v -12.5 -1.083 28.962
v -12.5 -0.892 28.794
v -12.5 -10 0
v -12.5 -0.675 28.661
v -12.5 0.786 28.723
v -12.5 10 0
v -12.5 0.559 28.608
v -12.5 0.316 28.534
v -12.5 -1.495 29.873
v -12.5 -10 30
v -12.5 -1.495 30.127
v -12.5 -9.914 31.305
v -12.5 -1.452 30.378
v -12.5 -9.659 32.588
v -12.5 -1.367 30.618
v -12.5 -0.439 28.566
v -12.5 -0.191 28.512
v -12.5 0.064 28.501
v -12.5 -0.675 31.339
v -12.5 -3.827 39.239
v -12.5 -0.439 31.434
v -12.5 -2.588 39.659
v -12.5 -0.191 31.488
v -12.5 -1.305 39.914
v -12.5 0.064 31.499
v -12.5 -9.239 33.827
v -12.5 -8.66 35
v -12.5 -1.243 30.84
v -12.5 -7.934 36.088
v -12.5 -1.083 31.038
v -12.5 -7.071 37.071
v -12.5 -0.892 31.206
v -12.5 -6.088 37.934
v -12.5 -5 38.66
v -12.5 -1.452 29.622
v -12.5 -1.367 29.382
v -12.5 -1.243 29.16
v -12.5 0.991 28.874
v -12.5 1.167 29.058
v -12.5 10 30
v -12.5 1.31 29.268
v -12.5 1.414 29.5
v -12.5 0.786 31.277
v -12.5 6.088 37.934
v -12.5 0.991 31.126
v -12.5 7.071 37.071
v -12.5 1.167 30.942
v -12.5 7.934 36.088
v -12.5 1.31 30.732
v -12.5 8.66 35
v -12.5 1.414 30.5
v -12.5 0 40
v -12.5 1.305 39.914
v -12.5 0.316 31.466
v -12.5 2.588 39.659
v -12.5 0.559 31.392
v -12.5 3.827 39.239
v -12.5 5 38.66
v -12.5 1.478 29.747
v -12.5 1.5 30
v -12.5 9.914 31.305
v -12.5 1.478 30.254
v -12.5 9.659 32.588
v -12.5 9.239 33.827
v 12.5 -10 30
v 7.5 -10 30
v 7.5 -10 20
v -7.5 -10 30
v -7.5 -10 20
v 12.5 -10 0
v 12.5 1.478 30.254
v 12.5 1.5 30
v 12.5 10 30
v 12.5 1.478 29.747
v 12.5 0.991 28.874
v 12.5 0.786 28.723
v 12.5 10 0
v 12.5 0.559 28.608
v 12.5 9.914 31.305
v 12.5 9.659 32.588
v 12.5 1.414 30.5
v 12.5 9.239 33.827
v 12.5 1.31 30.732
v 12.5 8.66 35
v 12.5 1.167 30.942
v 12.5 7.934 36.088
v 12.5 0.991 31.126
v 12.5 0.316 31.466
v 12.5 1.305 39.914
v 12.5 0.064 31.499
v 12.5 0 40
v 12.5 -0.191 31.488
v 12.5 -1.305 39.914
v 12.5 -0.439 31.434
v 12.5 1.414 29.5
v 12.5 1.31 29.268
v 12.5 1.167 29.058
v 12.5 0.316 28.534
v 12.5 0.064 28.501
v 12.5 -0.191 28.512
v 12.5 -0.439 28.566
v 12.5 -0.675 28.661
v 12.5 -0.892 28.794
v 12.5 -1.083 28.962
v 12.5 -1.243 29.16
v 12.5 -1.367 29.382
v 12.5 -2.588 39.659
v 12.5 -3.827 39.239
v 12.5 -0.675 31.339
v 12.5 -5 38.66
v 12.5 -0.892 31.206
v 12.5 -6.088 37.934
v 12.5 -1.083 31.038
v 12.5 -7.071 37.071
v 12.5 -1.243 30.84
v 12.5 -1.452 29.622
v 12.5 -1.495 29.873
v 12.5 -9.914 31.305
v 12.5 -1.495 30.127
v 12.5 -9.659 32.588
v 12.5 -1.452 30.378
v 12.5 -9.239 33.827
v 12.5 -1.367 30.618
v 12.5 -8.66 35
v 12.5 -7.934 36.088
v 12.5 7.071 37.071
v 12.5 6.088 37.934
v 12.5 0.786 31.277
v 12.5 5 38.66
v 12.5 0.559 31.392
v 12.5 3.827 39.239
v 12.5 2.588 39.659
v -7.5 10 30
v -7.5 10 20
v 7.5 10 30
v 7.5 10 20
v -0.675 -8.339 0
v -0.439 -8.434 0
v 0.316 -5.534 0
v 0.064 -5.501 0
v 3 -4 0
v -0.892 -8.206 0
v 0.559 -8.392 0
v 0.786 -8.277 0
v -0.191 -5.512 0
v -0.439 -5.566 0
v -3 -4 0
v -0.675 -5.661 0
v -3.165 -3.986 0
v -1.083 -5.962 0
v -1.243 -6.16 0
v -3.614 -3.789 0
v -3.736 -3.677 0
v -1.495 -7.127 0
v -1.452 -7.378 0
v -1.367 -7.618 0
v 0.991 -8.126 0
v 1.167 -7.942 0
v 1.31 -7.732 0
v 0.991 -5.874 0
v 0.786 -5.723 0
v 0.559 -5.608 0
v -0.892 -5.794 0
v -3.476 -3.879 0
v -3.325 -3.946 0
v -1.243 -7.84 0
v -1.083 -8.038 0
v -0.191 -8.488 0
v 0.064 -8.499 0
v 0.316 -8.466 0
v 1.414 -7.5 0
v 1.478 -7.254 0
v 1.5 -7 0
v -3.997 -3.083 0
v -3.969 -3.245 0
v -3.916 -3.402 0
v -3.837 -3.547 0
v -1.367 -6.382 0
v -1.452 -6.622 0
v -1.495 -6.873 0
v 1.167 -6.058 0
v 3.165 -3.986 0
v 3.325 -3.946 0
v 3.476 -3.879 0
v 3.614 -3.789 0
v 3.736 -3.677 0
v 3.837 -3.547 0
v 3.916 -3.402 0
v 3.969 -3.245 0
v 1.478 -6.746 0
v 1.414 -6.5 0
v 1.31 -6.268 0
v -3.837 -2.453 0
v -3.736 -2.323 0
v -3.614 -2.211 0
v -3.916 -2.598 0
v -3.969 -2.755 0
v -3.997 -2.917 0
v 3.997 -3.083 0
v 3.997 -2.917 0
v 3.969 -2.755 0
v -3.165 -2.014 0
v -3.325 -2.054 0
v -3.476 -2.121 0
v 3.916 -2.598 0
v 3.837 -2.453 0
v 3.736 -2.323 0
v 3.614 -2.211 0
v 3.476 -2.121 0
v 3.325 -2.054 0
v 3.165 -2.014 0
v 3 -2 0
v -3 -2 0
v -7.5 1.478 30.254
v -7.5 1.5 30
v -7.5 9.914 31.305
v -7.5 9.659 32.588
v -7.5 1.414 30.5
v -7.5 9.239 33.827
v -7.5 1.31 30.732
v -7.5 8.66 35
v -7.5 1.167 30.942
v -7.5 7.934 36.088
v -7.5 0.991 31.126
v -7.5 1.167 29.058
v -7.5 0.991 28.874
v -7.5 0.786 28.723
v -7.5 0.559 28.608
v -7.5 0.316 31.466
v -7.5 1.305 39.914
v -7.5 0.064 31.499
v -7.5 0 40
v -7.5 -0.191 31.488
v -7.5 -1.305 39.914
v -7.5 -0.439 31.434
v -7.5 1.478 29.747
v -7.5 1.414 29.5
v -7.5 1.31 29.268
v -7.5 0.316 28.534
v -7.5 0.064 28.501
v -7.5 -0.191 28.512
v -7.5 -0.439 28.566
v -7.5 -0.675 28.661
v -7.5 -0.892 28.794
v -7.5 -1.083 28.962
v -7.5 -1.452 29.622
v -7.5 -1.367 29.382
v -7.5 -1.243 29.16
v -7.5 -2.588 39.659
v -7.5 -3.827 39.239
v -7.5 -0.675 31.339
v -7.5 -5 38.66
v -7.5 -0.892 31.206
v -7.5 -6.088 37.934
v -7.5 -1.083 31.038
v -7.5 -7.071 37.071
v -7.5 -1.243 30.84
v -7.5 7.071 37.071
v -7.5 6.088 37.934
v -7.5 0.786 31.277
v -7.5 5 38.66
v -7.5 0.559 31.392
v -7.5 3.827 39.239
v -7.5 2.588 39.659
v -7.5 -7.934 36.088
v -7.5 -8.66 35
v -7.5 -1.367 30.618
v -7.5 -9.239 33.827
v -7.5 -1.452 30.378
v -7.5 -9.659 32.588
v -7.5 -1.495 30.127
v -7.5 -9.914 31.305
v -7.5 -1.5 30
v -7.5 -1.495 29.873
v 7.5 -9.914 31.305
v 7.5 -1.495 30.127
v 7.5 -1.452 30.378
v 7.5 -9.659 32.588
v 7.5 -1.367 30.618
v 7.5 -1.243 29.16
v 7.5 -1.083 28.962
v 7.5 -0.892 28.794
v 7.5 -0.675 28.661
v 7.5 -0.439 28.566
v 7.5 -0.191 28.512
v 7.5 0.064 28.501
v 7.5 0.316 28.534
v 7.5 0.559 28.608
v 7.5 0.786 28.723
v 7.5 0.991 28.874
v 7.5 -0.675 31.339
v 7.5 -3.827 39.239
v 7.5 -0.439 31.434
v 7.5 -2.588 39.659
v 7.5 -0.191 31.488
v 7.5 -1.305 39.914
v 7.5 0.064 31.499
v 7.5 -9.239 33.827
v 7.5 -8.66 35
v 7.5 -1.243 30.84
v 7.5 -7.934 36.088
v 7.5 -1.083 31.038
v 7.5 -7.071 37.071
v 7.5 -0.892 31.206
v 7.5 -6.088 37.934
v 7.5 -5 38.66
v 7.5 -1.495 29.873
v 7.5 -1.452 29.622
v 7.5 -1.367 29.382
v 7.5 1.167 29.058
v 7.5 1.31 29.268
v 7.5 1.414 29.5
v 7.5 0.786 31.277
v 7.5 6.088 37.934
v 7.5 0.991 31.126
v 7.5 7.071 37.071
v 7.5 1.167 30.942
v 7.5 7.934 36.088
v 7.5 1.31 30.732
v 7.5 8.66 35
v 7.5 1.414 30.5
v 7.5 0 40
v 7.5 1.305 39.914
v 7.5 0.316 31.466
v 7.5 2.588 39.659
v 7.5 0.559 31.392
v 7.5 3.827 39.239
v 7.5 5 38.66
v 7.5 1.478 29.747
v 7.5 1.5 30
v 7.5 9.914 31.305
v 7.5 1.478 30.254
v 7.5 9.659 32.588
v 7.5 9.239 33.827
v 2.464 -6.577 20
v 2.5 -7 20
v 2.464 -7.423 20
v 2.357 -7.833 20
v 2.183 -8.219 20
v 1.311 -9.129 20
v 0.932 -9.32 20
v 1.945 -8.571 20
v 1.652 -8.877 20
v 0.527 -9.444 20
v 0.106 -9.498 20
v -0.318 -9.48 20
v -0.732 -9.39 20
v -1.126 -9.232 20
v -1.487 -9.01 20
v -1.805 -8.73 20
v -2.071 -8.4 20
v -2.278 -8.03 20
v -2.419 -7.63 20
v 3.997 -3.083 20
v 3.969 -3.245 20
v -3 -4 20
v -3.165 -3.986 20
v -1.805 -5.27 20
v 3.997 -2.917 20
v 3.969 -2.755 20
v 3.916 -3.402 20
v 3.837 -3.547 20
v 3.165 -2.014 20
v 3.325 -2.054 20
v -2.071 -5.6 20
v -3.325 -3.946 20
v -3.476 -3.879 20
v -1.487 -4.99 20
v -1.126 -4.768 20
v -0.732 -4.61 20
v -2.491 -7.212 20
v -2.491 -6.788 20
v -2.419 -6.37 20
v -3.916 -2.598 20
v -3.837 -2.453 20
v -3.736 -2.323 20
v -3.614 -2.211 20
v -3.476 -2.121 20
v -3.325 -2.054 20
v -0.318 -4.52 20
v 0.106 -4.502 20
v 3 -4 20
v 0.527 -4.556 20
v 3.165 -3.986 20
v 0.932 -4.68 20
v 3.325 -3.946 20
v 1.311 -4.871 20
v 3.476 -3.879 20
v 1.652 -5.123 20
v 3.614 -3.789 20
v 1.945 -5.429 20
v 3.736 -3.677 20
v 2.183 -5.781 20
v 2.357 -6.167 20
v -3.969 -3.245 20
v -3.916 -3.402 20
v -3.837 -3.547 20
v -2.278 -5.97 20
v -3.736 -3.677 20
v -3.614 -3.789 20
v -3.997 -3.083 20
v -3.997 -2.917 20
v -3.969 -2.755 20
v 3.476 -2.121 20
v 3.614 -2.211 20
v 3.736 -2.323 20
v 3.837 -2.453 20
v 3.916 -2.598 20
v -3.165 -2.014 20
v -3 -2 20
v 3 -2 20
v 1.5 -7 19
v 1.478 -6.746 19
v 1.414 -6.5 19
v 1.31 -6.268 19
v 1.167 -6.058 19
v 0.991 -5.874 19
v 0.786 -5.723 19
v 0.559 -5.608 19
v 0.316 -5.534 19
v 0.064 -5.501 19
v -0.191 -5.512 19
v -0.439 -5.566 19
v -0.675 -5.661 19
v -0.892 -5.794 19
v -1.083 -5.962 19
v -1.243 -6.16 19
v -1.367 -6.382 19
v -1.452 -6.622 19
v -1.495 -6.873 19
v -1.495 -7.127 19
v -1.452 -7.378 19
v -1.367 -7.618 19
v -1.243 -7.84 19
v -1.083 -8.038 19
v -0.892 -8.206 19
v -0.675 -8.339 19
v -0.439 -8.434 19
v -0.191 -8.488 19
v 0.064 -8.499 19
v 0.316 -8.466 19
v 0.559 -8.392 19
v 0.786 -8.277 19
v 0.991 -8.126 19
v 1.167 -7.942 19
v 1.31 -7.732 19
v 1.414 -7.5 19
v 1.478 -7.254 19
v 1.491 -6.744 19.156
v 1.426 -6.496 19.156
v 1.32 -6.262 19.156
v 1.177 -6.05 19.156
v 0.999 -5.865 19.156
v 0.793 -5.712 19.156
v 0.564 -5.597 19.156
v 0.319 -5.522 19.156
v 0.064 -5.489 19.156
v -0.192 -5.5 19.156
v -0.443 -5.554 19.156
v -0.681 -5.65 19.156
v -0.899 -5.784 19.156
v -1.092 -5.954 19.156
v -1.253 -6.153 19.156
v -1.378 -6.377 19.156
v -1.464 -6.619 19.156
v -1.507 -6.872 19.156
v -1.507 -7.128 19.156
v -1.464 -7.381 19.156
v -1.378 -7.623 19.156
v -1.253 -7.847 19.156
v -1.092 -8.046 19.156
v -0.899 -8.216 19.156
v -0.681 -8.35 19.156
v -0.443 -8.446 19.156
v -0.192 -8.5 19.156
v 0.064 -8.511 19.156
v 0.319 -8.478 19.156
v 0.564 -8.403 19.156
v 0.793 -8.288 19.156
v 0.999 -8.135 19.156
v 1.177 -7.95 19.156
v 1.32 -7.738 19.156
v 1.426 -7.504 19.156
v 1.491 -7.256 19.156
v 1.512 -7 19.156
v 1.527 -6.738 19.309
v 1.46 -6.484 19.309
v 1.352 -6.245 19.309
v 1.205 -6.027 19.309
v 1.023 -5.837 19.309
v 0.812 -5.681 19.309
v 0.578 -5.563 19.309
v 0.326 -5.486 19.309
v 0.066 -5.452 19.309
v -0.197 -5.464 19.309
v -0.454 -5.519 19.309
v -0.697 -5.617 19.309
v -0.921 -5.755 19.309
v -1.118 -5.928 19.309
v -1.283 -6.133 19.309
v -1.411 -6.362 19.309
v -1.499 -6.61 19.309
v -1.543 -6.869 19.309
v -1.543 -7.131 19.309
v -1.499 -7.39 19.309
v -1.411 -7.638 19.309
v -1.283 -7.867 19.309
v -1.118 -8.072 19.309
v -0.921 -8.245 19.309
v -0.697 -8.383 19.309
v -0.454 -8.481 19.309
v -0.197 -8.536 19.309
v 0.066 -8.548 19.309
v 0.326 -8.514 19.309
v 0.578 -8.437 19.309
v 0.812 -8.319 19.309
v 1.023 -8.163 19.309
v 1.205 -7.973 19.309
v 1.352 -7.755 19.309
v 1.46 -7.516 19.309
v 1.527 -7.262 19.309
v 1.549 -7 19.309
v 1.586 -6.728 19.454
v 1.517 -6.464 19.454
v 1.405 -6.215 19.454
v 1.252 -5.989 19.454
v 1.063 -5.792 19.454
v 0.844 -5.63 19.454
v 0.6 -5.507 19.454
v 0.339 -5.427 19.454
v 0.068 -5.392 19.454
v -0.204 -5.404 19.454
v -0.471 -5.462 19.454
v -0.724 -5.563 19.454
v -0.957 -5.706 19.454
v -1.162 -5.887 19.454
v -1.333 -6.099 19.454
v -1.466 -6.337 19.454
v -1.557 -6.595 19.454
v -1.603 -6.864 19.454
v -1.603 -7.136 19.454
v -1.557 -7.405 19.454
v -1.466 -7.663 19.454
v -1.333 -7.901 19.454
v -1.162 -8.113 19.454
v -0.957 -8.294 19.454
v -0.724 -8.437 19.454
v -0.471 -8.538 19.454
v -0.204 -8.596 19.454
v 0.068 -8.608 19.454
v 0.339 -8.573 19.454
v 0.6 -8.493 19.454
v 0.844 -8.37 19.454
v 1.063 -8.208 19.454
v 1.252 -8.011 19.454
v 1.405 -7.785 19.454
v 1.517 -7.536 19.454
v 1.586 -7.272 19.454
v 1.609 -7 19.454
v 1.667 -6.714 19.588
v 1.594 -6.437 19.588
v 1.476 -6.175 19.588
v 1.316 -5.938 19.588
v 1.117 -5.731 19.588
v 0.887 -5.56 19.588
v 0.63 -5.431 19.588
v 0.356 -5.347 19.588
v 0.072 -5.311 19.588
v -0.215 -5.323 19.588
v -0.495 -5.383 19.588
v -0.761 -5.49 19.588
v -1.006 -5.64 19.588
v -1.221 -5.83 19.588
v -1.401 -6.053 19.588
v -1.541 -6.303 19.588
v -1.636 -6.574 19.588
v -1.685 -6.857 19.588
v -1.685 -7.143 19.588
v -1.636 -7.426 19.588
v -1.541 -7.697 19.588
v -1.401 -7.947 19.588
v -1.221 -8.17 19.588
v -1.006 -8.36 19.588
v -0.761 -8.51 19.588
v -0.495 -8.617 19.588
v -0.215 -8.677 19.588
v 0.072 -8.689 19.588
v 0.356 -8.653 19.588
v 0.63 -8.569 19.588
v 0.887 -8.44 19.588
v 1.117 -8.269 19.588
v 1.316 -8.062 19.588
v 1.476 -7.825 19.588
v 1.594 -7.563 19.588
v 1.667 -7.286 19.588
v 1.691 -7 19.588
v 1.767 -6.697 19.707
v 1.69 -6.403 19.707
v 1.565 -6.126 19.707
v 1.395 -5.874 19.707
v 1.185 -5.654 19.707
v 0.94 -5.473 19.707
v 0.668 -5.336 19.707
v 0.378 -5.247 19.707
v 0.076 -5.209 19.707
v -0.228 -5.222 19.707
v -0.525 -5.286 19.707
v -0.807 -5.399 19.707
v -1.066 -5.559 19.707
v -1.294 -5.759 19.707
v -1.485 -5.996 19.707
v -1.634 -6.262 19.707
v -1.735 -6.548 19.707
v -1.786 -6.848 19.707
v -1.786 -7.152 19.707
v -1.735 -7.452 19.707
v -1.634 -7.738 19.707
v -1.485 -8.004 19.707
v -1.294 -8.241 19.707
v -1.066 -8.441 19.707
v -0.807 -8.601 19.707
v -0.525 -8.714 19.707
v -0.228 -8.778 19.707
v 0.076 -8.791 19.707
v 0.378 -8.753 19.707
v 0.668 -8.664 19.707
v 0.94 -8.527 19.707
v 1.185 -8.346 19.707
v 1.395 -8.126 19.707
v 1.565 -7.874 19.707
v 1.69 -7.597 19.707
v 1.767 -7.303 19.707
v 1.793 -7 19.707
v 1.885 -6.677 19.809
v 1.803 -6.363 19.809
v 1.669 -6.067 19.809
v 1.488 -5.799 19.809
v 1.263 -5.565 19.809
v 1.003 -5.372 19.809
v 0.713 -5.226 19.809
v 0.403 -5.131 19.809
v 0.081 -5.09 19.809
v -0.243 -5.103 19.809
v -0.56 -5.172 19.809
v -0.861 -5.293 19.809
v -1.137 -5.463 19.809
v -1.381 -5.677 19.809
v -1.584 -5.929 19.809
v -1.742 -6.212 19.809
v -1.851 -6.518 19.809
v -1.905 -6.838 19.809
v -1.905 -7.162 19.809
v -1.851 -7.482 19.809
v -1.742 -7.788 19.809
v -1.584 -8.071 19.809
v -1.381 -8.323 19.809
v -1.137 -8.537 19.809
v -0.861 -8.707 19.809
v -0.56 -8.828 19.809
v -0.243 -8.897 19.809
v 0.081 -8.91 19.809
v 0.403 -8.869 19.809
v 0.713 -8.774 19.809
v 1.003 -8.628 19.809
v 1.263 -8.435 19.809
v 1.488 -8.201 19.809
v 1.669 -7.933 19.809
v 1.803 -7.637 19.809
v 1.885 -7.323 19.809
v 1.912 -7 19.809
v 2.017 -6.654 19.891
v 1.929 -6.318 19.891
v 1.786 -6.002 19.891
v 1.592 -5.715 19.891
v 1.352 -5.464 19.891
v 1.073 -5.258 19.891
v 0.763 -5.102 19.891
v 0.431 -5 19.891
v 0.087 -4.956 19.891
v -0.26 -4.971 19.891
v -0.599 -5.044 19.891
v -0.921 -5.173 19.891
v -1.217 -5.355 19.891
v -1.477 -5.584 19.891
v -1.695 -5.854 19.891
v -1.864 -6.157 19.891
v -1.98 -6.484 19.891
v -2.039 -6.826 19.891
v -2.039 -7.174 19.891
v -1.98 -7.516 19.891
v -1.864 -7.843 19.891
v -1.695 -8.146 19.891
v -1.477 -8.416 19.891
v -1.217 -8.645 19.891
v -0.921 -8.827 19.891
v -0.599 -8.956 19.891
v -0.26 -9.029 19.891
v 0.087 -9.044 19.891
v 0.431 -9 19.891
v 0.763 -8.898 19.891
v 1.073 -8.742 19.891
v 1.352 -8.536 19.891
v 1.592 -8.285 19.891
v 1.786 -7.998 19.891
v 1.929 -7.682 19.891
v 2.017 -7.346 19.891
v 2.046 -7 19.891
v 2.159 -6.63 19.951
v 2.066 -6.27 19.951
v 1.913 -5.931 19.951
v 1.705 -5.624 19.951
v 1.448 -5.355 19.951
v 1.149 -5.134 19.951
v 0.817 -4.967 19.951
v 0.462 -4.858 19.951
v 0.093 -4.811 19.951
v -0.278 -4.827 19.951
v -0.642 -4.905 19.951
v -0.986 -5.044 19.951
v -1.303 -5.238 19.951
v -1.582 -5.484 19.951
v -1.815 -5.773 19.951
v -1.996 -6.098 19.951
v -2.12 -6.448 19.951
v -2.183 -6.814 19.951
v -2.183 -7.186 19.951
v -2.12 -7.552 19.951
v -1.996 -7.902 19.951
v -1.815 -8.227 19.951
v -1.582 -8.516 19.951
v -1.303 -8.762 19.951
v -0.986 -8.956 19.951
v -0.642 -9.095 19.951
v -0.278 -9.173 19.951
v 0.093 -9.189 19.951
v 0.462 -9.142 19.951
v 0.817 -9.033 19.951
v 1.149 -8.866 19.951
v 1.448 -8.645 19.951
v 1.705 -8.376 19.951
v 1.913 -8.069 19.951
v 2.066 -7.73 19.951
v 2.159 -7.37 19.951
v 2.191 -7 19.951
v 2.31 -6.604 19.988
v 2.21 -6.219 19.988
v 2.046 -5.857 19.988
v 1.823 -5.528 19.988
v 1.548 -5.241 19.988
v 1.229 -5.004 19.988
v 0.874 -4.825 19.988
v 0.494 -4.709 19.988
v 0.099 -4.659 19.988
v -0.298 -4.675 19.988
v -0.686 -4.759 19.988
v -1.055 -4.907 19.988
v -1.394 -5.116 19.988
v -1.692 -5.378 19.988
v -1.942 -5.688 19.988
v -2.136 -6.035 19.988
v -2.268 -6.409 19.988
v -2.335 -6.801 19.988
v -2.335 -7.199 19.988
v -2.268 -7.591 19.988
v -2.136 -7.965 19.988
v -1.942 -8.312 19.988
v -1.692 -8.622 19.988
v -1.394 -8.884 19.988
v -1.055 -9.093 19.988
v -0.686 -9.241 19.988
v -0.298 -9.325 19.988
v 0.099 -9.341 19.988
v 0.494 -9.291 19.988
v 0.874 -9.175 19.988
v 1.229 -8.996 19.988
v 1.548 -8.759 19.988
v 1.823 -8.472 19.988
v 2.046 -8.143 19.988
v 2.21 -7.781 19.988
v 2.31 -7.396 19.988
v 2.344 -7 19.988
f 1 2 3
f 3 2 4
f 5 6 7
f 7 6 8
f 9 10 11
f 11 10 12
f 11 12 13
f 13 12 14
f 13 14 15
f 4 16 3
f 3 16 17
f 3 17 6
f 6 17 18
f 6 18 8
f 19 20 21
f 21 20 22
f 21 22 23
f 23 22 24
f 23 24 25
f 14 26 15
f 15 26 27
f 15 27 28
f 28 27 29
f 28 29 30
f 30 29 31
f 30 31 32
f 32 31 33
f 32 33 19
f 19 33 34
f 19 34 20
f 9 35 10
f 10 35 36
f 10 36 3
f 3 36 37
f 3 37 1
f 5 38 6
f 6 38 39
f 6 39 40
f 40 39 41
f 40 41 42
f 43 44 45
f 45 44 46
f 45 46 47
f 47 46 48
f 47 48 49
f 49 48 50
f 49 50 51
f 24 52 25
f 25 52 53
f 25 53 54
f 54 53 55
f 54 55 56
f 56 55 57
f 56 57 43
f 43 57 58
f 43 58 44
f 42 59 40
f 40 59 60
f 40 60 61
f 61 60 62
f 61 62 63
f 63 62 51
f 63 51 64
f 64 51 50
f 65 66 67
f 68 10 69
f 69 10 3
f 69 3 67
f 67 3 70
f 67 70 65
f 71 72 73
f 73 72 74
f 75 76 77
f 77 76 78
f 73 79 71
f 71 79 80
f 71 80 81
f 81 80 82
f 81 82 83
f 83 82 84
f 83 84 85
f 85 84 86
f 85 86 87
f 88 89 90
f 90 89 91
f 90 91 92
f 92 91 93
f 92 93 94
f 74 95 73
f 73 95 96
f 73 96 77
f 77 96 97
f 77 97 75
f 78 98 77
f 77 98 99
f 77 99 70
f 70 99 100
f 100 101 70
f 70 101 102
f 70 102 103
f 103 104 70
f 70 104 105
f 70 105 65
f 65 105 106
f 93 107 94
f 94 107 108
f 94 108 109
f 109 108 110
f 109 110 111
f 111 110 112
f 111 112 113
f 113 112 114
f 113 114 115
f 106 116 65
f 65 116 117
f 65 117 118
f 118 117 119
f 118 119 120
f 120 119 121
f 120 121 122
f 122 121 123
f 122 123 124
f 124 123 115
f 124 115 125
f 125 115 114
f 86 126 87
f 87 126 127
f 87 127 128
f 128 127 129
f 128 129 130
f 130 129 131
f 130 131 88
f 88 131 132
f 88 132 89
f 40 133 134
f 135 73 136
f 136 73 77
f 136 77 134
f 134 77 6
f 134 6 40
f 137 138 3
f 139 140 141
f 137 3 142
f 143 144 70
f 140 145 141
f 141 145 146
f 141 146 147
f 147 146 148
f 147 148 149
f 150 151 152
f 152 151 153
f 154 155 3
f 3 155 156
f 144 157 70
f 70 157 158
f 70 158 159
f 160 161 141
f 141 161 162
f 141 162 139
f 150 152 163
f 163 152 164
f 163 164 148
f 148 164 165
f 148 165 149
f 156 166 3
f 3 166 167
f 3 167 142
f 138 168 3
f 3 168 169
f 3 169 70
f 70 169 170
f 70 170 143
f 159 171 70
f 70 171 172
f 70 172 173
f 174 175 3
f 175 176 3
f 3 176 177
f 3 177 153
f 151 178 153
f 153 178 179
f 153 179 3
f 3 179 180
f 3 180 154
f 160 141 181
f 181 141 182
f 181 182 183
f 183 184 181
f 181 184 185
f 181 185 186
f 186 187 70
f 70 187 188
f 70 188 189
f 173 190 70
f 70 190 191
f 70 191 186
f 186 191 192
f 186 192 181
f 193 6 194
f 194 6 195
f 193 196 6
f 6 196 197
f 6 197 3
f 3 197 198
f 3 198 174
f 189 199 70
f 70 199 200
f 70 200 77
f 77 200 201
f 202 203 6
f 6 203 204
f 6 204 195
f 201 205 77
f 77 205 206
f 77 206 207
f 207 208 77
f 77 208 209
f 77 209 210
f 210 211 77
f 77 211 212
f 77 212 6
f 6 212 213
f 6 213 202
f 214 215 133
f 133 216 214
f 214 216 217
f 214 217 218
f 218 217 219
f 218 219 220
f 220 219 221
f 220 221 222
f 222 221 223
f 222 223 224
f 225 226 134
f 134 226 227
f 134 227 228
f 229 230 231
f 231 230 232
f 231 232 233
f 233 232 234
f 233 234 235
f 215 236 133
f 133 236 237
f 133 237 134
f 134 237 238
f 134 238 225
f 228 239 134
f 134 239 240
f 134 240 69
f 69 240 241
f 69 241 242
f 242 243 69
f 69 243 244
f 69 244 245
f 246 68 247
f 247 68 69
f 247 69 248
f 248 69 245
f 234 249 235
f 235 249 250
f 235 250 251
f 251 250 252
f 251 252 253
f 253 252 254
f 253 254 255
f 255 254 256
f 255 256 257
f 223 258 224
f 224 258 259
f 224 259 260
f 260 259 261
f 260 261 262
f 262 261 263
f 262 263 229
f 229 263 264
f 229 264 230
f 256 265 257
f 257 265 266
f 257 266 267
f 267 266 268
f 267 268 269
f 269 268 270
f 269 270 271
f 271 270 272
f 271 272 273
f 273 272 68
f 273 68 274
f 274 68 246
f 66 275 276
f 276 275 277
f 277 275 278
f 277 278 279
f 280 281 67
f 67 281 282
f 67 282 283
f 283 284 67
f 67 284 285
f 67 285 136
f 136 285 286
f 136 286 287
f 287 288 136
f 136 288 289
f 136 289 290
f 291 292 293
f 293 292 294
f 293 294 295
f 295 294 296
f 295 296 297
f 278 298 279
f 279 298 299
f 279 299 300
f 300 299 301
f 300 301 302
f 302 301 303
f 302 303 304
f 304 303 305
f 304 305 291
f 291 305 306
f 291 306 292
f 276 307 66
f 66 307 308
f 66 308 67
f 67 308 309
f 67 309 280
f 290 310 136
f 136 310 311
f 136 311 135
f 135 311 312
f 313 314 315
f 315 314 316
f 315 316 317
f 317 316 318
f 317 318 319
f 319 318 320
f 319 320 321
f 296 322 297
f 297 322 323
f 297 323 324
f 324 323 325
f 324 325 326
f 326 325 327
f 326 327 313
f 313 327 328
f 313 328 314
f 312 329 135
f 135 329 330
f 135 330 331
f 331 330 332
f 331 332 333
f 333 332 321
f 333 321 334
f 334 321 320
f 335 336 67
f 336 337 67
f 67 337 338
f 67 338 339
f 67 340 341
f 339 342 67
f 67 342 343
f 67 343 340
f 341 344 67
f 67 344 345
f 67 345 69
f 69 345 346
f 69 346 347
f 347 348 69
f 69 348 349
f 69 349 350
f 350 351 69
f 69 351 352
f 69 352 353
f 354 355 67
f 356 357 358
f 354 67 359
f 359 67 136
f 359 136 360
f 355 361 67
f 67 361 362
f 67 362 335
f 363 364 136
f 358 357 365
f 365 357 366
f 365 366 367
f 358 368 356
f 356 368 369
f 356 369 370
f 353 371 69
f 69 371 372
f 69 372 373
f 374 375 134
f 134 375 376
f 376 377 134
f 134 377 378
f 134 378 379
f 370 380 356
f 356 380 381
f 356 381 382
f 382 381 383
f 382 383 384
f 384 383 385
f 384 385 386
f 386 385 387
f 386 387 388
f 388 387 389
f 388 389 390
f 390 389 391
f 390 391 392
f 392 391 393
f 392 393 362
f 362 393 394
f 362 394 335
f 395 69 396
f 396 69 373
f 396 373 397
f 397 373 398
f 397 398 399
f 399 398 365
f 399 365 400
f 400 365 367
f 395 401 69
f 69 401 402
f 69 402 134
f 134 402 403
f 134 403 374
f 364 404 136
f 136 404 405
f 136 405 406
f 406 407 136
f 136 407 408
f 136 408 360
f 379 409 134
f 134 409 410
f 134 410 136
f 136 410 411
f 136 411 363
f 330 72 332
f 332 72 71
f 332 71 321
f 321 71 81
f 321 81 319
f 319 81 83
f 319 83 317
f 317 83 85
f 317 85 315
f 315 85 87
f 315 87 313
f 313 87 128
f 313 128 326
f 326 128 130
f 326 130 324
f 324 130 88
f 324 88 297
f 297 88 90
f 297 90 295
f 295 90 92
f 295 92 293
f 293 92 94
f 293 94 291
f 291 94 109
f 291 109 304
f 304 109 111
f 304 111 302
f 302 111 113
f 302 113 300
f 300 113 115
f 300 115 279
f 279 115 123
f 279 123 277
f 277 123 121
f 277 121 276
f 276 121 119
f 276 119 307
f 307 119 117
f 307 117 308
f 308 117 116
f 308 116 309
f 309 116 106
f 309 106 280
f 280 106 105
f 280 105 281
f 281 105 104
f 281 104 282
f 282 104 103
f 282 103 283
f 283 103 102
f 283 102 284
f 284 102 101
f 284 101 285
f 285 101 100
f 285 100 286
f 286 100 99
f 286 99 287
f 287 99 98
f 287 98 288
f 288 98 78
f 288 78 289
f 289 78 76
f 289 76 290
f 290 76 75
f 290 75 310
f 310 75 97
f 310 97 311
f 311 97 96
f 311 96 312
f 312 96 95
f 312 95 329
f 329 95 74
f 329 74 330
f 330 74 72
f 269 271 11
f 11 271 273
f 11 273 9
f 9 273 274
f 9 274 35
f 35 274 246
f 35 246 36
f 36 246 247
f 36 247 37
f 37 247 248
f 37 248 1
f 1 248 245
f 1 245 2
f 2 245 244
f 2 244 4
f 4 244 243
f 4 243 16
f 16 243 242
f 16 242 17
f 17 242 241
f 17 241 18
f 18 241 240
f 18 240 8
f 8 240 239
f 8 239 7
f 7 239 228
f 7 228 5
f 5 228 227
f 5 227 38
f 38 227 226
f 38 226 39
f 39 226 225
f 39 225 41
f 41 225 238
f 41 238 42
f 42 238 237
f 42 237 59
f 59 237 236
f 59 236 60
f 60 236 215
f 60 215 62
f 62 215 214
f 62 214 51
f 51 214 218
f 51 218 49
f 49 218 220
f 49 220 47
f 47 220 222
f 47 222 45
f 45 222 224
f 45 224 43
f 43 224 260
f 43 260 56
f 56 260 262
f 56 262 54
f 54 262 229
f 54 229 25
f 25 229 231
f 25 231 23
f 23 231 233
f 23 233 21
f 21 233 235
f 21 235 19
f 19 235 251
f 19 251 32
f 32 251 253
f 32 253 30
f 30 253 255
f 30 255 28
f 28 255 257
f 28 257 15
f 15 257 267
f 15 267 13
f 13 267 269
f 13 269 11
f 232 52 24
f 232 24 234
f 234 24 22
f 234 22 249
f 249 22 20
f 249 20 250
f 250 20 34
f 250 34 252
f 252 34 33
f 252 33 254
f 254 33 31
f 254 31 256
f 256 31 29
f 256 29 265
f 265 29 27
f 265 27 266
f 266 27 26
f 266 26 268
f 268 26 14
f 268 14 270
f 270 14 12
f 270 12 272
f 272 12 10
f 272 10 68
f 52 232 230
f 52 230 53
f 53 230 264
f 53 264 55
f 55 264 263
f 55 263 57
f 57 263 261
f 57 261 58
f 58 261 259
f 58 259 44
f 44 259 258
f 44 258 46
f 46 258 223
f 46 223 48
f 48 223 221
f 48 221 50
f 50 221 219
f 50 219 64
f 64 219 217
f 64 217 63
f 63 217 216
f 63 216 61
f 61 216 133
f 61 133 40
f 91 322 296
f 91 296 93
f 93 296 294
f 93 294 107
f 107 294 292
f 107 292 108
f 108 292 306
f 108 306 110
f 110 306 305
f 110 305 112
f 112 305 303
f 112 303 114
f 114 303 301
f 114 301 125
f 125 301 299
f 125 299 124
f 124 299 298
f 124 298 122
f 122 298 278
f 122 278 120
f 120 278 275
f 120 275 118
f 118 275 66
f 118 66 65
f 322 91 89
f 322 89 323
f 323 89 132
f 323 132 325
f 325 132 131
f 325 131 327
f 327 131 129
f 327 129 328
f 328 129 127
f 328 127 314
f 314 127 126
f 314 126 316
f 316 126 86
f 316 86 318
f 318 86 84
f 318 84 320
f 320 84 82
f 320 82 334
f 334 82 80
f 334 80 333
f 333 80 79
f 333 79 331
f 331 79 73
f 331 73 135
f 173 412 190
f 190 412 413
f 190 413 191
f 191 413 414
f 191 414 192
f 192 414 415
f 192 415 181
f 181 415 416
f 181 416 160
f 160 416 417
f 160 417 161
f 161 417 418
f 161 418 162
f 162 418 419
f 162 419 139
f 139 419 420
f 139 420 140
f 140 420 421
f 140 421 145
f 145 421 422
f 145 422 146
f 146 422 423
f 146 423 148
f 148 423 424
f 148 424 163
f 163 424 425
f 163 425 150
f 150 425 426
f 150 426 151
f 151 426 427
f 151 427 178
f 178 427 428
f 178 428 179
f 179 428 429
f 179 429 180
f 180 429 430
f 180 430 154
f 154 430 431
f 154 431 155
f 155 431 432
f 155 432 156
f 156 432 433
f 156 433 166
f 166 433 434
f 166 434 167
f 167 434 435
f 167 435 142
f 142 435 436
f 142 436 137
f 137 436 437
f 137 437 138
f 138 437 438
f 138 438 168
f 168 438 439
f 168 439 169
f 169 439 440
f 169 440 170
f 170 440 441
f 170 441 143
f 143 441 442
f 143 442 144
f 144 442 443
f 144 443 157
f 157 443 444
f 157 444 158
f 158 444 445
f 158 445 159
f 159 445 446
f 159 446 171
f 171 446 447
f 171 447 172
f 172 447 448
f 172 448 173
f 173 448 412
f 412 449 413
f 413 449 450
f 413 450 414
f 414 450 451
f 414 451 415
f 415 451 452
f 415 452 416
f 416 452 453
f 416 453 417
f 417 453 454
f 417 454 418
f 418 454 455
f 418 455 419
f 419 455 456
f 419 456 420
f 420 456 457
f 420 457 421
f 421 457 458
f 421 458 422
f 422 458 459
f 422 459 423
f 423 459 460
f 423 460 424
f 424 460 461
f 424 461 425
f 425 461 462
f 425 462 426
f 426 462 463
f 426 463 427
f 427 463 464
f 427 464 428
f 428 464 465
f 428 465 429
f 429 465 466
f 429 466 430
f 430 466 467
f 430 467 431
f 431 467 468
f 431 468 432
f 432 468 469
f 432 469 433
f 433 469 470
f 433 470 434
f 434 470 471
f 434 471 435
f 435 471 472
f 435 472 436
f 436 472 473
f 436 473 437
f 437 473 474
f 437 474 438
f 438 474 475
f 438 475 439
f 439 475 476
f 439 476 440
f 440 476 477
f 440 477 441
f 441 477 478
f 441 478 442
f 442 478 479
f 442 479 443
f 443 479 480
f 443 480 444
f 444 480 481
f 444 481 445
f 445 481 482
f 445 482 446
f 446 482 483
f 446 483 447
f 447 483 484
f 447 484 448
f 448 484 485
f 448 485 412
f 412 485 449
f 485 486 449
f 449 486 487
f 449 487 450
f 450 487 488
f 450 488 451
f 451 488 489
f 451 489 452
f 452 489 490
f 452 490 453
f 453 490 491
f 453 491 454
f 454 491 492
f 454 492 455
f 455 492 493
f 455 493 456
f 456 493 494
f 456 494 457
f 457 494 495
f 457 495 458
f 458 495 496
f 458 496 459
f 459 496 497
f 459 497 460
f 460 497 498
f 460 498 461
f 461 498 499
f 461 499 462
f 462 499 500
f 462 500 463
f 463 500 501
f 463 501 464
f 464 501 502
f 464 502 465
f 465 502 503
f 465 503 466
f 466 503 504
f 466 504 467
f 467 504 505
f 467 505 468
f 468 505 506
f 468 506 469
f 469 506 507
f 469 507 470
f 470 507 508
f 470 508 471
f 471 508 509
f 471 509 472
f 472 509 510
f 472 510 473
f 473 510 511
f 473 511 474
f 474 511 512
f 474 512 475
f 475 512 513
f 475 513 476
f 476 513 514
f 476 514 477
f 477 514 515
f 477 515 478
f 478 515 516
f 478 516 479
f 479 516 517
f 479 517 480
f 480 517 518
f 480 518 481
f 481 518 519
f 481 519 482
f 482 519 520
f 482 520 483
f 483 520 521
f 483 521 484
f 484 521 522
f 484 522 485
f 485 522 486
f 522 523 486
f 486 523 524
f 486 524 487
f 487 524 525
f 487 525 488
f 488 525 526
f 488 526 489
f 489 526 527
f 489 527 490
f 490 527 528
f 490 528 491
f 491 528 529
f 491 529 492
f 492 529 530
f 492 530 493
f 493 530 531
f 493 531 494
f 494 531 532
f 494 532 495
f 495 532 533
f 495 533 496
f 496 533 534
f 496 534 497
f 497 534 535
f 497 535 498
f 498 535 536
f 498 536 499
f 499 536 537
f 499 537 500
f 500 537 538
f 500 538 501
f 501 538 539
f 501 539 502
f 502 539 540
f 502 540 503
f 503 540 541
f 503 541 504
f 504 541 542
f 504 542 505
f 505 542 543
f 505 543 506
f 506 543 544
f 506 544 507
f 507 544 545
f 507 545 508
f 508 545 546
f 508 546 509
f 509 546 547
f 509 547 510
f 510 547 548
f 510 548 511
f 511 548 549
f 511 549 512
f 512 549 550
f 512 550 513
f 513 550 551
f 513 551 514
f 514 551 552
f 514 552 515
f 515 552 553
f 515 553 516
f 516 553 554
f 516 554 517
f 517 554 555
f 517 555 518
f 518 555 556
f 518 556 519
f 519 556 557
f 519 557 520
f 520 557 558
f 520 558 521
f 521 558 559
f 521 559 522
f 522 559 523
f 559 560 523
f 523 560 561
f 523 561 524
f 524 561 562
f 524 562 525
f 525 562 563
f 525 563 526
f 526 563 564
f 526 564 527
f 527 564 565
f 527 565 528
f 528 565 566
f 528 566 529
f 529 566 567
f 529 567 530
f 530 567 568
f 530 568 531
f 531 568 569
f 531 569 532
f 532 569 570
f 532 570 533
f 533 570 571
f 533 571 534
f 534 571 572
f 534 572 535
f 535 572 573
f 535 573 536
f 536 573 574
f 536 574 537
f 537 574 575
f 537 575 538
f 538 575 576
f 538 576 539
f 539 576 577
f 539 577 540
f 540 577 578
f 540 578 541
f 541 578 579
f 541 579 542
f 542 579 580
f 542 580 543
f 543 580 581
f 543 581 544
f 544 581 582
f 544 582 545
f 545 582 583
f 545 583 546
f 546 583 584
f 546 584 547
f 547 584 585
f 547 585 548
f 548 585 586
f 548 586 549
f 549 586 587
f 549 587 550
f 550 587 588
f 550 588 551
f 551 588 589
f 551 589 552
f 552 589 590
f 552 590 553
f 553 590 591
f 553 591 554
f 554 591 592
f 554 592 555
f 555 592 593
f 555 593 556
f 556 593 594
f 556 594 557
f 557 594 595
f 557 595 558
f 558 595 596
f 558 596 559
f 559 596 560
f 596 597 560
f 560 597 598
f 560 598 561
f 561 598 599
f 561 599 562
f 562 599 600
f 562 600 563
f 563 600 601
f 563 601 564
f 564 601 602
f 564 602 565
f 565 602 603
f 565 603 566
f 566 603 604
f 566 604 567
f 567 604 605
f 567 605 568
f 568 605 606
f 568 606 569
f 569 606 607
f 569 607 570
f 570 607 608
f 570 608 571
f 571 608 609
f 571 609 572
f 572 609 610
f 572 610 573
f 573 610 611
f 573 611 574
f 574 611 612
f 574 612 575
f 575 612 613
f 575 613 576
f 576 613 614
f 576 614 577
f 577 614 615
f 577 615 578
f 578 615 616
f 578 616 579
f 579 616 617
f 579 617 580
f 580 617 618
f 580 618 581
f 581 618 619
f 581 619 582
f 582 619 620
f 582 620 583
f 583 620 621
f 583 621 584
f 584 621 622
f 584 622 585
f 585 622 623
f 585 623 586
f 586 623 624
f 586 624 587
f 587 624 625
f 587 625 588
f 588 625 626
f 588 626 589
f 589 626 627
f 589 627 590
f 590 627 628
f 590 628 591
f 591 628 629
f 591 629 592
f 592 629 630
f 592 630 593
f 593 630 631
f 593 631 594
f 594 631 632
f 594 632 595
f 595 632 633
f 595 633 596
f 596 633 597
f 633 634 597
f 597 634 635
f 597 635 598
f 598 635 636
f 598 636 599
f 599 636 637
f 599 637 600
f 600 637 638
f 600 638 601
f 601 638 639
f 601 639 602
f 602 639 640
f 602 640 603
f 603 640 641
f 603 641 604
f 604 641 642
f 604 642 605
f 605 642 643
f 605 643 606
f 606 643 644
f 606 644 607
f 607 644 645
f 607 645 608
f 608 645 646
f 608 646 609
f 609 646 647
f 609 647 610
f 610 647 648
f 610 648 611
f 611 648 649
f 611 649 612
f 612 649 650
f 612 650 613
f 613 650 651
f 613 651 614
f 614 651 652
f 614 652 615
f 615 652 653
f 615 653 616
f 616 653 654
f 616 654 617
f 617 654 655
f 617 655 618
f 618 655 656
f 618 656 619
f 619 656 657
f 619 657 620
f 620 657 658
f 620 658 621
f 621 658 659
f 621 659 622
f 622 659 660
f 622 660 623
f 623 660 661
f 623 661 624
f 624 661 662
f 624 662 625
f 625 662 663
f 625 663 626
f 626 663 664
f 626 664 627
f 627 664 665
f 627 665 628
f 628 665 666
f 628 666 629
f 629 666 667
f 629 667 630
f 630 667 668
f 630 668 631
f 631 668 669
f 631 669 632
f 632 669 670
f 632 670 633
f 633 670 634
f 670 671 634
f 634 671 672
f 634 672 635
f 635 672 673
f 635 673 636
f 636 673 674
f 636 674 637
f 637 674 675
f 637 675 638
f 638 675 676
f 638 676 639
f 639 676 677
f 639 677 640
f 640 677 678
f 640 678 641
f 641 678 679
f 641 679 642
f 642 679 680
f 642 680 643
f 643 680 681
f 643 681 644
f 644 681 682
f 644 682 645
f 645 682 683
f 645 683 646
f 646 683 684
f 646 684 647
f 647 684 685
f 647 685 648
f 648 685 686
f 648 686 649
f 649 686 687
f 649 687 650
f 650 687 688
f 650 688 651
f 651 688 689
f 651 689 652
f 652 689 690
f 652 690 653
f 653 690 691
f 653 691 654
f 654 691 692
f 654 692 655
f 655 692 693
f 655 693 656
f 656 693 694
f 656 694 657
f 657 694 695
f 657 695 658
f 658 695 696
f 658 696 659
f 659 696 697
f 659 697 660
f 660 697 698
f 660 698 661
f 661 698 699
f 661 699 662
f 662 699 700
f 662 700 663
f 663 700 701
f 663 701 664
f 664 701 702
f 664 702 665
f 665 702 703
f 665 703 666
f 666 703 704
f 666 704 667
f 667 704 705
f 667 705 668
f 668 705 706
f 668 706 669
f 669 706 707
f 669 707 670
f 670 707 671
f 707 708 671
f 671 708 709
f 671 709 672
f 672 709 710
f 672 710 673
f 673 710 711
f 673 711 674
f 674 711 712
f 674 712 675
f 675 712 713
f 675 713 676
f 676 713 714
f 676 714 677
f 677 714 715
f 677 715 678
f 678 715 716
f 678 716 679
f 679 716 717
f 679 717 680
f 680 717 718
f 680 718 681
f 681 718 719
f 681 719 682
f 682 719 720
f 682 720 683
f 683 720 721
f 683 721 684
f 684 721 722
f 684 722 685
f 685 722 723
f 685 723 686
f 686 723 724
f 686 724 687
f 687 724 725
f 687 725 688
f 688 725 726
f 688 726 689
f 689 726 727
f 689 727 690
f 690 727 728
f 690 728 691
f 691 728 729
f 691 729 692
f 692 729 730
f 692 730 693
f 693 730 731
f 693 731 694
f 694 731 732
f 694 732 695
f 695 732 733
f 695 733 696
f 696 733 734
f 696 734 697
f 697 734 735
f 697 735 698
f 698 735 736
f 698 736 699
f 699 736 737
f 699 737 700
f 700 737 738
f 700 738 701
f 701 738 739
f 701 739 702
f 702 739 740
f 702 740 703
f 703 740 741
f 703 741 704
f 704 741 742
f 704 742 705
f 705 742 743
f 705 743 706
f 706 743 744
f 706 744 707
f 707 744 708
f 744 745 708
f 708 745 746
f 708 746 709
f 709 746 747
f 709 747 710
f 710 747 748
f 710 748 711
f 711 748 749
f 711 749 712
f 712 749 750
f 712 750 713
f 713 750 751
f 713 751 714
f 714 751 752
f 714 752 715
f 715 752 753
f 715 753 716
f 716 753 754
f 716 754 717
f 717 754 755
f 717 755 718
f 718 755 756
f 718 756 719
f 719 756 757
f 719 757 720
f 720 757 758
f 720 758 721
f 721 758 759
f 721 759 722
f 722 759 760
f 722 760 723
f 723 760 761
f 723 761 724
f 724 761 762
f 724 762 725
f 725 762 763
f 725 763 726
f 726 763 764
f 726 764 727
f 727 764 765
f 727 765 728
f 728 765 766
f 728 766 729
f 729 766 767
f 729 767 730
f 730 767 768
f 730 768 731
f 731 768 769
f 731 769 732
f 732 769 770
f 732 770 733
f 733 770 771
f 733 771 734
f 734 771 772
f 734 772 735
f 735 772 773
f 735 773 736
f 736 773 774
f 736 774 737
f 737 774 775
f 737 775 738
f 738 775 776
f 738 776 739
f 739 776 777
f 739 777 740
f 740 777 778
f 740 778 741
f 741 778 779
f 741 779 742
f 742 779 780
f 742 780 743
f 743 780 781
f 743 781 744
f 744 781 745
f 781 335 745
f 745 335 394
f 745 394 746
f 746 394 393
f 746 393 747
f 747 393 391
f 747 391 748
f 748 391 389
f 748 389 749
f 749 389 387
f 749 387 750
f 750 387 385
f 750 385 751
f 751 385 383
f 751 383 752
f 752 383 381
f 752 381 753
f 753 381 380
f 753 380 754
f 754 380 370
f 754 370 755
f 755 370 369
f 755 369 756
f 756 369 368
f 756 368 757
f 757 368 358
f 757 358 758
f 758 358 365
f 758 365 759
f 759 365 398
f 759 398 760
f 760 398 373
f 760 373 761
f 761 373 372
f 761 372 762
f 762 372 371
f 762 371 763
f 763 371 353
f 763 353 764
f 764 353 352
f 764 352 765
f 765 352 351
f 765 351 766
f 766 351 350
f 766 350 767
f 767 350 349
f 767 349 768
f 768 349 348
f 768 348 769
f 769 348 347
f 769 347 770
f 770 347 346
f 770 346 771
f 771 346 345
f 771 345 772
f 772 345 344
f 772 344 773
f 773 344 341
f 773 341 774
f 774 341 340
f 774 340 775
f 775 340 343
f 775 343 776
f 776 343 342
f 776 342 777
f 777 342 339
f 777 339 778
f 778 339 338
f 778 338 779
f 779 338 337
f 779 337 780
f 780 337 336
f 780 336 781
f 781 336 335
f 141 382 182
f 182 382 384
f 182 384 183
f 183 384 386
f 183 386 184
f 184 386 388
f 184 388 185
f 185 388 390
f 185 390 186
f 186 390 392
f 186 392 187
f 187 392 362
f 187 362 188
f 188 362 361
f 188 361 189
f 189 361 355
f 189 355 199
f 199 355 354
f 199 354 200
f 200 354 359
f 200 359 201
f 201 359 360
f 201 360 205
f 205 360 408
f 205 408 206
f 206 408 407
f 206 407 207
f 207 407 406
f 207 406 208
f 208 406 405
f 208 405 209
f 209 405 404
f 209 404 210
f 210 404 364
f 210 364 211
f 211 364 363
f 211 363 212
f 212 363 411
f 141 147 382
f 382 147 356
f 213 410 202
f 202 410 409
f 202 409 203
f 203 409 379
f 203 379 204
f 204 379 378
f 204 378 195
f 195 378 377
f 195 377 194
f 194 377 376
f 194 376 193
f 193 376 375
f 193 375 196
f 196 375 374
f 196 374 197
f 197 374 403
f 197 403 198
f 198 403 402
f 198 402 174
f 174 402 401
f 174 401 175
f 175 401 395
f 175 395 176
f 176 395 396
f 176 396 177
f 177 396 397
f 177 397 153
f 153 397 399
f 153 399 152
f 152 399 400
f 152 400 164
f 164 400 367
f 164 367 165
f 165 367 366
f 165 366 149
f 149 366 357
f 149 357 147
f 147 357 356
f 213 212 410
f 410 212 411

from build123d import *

# Parameters (mm, degrees)
SKETCH1_W           = 25
SKETCH1_H           = 20
BOSS_EXTRUDE1_DEPTH = 40
SKETCH2_W           = 15
SKETCH2_H           = 20
CUT_EXTRUDE1_DEPTH  = 20
SKETCH3_R           = 1.5
CUT_EXTRUDE2_DEPTH  = 30
FILLET1_R           = 10
SKETCH4_R           = 1.5
CUT_EXTRUDE3_DEPTH  = 20
FILLET2_R           = 1
CUT_EXTRUDE4_DEPTH  = 20


with BuildPart() as part:
    # Sketch1 → Boss-Extrude1 (new body)
    with BuildSketch(Plane.XY):
        Rectangle(SKETCH1_W, SKETCH1_H)
    extrude(amount=BOSS_EXTRUDE1_DEPTH)

    # Sketch2 → Cut-Extrude1 (cut)
    with BuildSketch(Plane.XY.offset(40)):
        Rectangle(SKETCH2_W, SKETCH2_H)
    extrude(amount=-CUT_EXTRUDE1_DEPTH, mode=Mode.SUBTRACT)

    # Sketch3 → Cut-Extrude2 (cut)
    with BuildSketch(Plane(origin=(12.5, 0, 0), x_dir=(0, 0, -1), z_dir=(1, 0, 0))):
        with Locations(Location((-30, 0, 0), (0, 0, 90))):
            Circle(SKETCH3_R)
    extrude(amount=-CUT_EXTRUDE2_DEPTH, mode=Mode.SUBTRACT)

    # Fillet1
    fillet1_edges = [part.edges().sort_by_distance(p)[0] for p in [
        (-10, 10, 40),
        (10, 10, 40),
        (10, -10, 40),
        (-10, -10, 40),
    ]]
    fillet(fillet1_edges, radius=FILLET1_R - 0.0001)  # a hair under: the kernel refuses the full size

    # Sketch4 → Cut-Extrude3 (cut)
    with BuildSketch(Plane.XY.offset(20)):
        with Locations((0, -7)):
            Circle(SKETCH4_R)
    extrude(amount=-CUT_EXTRUDE3_DEPTH, mode=Mode.SUBTRACT)

    # Fillet2
    fillet2_edges = [part.edges().sort_by_distance(p)[0] for p in [
        (-1.5, -7, 20),
    ]]
    fillet(fillet2_edges, radius=FILLET2_R)

    # Sketch5 → Cut-Extrude4 (cut)
    with BuildSketch(Plane.XY.offset(20)):
        with BuildLine():
            Line((-3, -2), (3, -2))
            ThreePointArc((3, -2), (4, -3), (3, -4))
            Line((3, -4), (-3, -4))
            ThreePointArc((-3, -4), (-4, -3), (-3, -2))
        make_face()
    extrude(amount=-CUT_EXTRUDE4_DEPTH, mode=Mode.SUBTRACT)


solid = part.part
